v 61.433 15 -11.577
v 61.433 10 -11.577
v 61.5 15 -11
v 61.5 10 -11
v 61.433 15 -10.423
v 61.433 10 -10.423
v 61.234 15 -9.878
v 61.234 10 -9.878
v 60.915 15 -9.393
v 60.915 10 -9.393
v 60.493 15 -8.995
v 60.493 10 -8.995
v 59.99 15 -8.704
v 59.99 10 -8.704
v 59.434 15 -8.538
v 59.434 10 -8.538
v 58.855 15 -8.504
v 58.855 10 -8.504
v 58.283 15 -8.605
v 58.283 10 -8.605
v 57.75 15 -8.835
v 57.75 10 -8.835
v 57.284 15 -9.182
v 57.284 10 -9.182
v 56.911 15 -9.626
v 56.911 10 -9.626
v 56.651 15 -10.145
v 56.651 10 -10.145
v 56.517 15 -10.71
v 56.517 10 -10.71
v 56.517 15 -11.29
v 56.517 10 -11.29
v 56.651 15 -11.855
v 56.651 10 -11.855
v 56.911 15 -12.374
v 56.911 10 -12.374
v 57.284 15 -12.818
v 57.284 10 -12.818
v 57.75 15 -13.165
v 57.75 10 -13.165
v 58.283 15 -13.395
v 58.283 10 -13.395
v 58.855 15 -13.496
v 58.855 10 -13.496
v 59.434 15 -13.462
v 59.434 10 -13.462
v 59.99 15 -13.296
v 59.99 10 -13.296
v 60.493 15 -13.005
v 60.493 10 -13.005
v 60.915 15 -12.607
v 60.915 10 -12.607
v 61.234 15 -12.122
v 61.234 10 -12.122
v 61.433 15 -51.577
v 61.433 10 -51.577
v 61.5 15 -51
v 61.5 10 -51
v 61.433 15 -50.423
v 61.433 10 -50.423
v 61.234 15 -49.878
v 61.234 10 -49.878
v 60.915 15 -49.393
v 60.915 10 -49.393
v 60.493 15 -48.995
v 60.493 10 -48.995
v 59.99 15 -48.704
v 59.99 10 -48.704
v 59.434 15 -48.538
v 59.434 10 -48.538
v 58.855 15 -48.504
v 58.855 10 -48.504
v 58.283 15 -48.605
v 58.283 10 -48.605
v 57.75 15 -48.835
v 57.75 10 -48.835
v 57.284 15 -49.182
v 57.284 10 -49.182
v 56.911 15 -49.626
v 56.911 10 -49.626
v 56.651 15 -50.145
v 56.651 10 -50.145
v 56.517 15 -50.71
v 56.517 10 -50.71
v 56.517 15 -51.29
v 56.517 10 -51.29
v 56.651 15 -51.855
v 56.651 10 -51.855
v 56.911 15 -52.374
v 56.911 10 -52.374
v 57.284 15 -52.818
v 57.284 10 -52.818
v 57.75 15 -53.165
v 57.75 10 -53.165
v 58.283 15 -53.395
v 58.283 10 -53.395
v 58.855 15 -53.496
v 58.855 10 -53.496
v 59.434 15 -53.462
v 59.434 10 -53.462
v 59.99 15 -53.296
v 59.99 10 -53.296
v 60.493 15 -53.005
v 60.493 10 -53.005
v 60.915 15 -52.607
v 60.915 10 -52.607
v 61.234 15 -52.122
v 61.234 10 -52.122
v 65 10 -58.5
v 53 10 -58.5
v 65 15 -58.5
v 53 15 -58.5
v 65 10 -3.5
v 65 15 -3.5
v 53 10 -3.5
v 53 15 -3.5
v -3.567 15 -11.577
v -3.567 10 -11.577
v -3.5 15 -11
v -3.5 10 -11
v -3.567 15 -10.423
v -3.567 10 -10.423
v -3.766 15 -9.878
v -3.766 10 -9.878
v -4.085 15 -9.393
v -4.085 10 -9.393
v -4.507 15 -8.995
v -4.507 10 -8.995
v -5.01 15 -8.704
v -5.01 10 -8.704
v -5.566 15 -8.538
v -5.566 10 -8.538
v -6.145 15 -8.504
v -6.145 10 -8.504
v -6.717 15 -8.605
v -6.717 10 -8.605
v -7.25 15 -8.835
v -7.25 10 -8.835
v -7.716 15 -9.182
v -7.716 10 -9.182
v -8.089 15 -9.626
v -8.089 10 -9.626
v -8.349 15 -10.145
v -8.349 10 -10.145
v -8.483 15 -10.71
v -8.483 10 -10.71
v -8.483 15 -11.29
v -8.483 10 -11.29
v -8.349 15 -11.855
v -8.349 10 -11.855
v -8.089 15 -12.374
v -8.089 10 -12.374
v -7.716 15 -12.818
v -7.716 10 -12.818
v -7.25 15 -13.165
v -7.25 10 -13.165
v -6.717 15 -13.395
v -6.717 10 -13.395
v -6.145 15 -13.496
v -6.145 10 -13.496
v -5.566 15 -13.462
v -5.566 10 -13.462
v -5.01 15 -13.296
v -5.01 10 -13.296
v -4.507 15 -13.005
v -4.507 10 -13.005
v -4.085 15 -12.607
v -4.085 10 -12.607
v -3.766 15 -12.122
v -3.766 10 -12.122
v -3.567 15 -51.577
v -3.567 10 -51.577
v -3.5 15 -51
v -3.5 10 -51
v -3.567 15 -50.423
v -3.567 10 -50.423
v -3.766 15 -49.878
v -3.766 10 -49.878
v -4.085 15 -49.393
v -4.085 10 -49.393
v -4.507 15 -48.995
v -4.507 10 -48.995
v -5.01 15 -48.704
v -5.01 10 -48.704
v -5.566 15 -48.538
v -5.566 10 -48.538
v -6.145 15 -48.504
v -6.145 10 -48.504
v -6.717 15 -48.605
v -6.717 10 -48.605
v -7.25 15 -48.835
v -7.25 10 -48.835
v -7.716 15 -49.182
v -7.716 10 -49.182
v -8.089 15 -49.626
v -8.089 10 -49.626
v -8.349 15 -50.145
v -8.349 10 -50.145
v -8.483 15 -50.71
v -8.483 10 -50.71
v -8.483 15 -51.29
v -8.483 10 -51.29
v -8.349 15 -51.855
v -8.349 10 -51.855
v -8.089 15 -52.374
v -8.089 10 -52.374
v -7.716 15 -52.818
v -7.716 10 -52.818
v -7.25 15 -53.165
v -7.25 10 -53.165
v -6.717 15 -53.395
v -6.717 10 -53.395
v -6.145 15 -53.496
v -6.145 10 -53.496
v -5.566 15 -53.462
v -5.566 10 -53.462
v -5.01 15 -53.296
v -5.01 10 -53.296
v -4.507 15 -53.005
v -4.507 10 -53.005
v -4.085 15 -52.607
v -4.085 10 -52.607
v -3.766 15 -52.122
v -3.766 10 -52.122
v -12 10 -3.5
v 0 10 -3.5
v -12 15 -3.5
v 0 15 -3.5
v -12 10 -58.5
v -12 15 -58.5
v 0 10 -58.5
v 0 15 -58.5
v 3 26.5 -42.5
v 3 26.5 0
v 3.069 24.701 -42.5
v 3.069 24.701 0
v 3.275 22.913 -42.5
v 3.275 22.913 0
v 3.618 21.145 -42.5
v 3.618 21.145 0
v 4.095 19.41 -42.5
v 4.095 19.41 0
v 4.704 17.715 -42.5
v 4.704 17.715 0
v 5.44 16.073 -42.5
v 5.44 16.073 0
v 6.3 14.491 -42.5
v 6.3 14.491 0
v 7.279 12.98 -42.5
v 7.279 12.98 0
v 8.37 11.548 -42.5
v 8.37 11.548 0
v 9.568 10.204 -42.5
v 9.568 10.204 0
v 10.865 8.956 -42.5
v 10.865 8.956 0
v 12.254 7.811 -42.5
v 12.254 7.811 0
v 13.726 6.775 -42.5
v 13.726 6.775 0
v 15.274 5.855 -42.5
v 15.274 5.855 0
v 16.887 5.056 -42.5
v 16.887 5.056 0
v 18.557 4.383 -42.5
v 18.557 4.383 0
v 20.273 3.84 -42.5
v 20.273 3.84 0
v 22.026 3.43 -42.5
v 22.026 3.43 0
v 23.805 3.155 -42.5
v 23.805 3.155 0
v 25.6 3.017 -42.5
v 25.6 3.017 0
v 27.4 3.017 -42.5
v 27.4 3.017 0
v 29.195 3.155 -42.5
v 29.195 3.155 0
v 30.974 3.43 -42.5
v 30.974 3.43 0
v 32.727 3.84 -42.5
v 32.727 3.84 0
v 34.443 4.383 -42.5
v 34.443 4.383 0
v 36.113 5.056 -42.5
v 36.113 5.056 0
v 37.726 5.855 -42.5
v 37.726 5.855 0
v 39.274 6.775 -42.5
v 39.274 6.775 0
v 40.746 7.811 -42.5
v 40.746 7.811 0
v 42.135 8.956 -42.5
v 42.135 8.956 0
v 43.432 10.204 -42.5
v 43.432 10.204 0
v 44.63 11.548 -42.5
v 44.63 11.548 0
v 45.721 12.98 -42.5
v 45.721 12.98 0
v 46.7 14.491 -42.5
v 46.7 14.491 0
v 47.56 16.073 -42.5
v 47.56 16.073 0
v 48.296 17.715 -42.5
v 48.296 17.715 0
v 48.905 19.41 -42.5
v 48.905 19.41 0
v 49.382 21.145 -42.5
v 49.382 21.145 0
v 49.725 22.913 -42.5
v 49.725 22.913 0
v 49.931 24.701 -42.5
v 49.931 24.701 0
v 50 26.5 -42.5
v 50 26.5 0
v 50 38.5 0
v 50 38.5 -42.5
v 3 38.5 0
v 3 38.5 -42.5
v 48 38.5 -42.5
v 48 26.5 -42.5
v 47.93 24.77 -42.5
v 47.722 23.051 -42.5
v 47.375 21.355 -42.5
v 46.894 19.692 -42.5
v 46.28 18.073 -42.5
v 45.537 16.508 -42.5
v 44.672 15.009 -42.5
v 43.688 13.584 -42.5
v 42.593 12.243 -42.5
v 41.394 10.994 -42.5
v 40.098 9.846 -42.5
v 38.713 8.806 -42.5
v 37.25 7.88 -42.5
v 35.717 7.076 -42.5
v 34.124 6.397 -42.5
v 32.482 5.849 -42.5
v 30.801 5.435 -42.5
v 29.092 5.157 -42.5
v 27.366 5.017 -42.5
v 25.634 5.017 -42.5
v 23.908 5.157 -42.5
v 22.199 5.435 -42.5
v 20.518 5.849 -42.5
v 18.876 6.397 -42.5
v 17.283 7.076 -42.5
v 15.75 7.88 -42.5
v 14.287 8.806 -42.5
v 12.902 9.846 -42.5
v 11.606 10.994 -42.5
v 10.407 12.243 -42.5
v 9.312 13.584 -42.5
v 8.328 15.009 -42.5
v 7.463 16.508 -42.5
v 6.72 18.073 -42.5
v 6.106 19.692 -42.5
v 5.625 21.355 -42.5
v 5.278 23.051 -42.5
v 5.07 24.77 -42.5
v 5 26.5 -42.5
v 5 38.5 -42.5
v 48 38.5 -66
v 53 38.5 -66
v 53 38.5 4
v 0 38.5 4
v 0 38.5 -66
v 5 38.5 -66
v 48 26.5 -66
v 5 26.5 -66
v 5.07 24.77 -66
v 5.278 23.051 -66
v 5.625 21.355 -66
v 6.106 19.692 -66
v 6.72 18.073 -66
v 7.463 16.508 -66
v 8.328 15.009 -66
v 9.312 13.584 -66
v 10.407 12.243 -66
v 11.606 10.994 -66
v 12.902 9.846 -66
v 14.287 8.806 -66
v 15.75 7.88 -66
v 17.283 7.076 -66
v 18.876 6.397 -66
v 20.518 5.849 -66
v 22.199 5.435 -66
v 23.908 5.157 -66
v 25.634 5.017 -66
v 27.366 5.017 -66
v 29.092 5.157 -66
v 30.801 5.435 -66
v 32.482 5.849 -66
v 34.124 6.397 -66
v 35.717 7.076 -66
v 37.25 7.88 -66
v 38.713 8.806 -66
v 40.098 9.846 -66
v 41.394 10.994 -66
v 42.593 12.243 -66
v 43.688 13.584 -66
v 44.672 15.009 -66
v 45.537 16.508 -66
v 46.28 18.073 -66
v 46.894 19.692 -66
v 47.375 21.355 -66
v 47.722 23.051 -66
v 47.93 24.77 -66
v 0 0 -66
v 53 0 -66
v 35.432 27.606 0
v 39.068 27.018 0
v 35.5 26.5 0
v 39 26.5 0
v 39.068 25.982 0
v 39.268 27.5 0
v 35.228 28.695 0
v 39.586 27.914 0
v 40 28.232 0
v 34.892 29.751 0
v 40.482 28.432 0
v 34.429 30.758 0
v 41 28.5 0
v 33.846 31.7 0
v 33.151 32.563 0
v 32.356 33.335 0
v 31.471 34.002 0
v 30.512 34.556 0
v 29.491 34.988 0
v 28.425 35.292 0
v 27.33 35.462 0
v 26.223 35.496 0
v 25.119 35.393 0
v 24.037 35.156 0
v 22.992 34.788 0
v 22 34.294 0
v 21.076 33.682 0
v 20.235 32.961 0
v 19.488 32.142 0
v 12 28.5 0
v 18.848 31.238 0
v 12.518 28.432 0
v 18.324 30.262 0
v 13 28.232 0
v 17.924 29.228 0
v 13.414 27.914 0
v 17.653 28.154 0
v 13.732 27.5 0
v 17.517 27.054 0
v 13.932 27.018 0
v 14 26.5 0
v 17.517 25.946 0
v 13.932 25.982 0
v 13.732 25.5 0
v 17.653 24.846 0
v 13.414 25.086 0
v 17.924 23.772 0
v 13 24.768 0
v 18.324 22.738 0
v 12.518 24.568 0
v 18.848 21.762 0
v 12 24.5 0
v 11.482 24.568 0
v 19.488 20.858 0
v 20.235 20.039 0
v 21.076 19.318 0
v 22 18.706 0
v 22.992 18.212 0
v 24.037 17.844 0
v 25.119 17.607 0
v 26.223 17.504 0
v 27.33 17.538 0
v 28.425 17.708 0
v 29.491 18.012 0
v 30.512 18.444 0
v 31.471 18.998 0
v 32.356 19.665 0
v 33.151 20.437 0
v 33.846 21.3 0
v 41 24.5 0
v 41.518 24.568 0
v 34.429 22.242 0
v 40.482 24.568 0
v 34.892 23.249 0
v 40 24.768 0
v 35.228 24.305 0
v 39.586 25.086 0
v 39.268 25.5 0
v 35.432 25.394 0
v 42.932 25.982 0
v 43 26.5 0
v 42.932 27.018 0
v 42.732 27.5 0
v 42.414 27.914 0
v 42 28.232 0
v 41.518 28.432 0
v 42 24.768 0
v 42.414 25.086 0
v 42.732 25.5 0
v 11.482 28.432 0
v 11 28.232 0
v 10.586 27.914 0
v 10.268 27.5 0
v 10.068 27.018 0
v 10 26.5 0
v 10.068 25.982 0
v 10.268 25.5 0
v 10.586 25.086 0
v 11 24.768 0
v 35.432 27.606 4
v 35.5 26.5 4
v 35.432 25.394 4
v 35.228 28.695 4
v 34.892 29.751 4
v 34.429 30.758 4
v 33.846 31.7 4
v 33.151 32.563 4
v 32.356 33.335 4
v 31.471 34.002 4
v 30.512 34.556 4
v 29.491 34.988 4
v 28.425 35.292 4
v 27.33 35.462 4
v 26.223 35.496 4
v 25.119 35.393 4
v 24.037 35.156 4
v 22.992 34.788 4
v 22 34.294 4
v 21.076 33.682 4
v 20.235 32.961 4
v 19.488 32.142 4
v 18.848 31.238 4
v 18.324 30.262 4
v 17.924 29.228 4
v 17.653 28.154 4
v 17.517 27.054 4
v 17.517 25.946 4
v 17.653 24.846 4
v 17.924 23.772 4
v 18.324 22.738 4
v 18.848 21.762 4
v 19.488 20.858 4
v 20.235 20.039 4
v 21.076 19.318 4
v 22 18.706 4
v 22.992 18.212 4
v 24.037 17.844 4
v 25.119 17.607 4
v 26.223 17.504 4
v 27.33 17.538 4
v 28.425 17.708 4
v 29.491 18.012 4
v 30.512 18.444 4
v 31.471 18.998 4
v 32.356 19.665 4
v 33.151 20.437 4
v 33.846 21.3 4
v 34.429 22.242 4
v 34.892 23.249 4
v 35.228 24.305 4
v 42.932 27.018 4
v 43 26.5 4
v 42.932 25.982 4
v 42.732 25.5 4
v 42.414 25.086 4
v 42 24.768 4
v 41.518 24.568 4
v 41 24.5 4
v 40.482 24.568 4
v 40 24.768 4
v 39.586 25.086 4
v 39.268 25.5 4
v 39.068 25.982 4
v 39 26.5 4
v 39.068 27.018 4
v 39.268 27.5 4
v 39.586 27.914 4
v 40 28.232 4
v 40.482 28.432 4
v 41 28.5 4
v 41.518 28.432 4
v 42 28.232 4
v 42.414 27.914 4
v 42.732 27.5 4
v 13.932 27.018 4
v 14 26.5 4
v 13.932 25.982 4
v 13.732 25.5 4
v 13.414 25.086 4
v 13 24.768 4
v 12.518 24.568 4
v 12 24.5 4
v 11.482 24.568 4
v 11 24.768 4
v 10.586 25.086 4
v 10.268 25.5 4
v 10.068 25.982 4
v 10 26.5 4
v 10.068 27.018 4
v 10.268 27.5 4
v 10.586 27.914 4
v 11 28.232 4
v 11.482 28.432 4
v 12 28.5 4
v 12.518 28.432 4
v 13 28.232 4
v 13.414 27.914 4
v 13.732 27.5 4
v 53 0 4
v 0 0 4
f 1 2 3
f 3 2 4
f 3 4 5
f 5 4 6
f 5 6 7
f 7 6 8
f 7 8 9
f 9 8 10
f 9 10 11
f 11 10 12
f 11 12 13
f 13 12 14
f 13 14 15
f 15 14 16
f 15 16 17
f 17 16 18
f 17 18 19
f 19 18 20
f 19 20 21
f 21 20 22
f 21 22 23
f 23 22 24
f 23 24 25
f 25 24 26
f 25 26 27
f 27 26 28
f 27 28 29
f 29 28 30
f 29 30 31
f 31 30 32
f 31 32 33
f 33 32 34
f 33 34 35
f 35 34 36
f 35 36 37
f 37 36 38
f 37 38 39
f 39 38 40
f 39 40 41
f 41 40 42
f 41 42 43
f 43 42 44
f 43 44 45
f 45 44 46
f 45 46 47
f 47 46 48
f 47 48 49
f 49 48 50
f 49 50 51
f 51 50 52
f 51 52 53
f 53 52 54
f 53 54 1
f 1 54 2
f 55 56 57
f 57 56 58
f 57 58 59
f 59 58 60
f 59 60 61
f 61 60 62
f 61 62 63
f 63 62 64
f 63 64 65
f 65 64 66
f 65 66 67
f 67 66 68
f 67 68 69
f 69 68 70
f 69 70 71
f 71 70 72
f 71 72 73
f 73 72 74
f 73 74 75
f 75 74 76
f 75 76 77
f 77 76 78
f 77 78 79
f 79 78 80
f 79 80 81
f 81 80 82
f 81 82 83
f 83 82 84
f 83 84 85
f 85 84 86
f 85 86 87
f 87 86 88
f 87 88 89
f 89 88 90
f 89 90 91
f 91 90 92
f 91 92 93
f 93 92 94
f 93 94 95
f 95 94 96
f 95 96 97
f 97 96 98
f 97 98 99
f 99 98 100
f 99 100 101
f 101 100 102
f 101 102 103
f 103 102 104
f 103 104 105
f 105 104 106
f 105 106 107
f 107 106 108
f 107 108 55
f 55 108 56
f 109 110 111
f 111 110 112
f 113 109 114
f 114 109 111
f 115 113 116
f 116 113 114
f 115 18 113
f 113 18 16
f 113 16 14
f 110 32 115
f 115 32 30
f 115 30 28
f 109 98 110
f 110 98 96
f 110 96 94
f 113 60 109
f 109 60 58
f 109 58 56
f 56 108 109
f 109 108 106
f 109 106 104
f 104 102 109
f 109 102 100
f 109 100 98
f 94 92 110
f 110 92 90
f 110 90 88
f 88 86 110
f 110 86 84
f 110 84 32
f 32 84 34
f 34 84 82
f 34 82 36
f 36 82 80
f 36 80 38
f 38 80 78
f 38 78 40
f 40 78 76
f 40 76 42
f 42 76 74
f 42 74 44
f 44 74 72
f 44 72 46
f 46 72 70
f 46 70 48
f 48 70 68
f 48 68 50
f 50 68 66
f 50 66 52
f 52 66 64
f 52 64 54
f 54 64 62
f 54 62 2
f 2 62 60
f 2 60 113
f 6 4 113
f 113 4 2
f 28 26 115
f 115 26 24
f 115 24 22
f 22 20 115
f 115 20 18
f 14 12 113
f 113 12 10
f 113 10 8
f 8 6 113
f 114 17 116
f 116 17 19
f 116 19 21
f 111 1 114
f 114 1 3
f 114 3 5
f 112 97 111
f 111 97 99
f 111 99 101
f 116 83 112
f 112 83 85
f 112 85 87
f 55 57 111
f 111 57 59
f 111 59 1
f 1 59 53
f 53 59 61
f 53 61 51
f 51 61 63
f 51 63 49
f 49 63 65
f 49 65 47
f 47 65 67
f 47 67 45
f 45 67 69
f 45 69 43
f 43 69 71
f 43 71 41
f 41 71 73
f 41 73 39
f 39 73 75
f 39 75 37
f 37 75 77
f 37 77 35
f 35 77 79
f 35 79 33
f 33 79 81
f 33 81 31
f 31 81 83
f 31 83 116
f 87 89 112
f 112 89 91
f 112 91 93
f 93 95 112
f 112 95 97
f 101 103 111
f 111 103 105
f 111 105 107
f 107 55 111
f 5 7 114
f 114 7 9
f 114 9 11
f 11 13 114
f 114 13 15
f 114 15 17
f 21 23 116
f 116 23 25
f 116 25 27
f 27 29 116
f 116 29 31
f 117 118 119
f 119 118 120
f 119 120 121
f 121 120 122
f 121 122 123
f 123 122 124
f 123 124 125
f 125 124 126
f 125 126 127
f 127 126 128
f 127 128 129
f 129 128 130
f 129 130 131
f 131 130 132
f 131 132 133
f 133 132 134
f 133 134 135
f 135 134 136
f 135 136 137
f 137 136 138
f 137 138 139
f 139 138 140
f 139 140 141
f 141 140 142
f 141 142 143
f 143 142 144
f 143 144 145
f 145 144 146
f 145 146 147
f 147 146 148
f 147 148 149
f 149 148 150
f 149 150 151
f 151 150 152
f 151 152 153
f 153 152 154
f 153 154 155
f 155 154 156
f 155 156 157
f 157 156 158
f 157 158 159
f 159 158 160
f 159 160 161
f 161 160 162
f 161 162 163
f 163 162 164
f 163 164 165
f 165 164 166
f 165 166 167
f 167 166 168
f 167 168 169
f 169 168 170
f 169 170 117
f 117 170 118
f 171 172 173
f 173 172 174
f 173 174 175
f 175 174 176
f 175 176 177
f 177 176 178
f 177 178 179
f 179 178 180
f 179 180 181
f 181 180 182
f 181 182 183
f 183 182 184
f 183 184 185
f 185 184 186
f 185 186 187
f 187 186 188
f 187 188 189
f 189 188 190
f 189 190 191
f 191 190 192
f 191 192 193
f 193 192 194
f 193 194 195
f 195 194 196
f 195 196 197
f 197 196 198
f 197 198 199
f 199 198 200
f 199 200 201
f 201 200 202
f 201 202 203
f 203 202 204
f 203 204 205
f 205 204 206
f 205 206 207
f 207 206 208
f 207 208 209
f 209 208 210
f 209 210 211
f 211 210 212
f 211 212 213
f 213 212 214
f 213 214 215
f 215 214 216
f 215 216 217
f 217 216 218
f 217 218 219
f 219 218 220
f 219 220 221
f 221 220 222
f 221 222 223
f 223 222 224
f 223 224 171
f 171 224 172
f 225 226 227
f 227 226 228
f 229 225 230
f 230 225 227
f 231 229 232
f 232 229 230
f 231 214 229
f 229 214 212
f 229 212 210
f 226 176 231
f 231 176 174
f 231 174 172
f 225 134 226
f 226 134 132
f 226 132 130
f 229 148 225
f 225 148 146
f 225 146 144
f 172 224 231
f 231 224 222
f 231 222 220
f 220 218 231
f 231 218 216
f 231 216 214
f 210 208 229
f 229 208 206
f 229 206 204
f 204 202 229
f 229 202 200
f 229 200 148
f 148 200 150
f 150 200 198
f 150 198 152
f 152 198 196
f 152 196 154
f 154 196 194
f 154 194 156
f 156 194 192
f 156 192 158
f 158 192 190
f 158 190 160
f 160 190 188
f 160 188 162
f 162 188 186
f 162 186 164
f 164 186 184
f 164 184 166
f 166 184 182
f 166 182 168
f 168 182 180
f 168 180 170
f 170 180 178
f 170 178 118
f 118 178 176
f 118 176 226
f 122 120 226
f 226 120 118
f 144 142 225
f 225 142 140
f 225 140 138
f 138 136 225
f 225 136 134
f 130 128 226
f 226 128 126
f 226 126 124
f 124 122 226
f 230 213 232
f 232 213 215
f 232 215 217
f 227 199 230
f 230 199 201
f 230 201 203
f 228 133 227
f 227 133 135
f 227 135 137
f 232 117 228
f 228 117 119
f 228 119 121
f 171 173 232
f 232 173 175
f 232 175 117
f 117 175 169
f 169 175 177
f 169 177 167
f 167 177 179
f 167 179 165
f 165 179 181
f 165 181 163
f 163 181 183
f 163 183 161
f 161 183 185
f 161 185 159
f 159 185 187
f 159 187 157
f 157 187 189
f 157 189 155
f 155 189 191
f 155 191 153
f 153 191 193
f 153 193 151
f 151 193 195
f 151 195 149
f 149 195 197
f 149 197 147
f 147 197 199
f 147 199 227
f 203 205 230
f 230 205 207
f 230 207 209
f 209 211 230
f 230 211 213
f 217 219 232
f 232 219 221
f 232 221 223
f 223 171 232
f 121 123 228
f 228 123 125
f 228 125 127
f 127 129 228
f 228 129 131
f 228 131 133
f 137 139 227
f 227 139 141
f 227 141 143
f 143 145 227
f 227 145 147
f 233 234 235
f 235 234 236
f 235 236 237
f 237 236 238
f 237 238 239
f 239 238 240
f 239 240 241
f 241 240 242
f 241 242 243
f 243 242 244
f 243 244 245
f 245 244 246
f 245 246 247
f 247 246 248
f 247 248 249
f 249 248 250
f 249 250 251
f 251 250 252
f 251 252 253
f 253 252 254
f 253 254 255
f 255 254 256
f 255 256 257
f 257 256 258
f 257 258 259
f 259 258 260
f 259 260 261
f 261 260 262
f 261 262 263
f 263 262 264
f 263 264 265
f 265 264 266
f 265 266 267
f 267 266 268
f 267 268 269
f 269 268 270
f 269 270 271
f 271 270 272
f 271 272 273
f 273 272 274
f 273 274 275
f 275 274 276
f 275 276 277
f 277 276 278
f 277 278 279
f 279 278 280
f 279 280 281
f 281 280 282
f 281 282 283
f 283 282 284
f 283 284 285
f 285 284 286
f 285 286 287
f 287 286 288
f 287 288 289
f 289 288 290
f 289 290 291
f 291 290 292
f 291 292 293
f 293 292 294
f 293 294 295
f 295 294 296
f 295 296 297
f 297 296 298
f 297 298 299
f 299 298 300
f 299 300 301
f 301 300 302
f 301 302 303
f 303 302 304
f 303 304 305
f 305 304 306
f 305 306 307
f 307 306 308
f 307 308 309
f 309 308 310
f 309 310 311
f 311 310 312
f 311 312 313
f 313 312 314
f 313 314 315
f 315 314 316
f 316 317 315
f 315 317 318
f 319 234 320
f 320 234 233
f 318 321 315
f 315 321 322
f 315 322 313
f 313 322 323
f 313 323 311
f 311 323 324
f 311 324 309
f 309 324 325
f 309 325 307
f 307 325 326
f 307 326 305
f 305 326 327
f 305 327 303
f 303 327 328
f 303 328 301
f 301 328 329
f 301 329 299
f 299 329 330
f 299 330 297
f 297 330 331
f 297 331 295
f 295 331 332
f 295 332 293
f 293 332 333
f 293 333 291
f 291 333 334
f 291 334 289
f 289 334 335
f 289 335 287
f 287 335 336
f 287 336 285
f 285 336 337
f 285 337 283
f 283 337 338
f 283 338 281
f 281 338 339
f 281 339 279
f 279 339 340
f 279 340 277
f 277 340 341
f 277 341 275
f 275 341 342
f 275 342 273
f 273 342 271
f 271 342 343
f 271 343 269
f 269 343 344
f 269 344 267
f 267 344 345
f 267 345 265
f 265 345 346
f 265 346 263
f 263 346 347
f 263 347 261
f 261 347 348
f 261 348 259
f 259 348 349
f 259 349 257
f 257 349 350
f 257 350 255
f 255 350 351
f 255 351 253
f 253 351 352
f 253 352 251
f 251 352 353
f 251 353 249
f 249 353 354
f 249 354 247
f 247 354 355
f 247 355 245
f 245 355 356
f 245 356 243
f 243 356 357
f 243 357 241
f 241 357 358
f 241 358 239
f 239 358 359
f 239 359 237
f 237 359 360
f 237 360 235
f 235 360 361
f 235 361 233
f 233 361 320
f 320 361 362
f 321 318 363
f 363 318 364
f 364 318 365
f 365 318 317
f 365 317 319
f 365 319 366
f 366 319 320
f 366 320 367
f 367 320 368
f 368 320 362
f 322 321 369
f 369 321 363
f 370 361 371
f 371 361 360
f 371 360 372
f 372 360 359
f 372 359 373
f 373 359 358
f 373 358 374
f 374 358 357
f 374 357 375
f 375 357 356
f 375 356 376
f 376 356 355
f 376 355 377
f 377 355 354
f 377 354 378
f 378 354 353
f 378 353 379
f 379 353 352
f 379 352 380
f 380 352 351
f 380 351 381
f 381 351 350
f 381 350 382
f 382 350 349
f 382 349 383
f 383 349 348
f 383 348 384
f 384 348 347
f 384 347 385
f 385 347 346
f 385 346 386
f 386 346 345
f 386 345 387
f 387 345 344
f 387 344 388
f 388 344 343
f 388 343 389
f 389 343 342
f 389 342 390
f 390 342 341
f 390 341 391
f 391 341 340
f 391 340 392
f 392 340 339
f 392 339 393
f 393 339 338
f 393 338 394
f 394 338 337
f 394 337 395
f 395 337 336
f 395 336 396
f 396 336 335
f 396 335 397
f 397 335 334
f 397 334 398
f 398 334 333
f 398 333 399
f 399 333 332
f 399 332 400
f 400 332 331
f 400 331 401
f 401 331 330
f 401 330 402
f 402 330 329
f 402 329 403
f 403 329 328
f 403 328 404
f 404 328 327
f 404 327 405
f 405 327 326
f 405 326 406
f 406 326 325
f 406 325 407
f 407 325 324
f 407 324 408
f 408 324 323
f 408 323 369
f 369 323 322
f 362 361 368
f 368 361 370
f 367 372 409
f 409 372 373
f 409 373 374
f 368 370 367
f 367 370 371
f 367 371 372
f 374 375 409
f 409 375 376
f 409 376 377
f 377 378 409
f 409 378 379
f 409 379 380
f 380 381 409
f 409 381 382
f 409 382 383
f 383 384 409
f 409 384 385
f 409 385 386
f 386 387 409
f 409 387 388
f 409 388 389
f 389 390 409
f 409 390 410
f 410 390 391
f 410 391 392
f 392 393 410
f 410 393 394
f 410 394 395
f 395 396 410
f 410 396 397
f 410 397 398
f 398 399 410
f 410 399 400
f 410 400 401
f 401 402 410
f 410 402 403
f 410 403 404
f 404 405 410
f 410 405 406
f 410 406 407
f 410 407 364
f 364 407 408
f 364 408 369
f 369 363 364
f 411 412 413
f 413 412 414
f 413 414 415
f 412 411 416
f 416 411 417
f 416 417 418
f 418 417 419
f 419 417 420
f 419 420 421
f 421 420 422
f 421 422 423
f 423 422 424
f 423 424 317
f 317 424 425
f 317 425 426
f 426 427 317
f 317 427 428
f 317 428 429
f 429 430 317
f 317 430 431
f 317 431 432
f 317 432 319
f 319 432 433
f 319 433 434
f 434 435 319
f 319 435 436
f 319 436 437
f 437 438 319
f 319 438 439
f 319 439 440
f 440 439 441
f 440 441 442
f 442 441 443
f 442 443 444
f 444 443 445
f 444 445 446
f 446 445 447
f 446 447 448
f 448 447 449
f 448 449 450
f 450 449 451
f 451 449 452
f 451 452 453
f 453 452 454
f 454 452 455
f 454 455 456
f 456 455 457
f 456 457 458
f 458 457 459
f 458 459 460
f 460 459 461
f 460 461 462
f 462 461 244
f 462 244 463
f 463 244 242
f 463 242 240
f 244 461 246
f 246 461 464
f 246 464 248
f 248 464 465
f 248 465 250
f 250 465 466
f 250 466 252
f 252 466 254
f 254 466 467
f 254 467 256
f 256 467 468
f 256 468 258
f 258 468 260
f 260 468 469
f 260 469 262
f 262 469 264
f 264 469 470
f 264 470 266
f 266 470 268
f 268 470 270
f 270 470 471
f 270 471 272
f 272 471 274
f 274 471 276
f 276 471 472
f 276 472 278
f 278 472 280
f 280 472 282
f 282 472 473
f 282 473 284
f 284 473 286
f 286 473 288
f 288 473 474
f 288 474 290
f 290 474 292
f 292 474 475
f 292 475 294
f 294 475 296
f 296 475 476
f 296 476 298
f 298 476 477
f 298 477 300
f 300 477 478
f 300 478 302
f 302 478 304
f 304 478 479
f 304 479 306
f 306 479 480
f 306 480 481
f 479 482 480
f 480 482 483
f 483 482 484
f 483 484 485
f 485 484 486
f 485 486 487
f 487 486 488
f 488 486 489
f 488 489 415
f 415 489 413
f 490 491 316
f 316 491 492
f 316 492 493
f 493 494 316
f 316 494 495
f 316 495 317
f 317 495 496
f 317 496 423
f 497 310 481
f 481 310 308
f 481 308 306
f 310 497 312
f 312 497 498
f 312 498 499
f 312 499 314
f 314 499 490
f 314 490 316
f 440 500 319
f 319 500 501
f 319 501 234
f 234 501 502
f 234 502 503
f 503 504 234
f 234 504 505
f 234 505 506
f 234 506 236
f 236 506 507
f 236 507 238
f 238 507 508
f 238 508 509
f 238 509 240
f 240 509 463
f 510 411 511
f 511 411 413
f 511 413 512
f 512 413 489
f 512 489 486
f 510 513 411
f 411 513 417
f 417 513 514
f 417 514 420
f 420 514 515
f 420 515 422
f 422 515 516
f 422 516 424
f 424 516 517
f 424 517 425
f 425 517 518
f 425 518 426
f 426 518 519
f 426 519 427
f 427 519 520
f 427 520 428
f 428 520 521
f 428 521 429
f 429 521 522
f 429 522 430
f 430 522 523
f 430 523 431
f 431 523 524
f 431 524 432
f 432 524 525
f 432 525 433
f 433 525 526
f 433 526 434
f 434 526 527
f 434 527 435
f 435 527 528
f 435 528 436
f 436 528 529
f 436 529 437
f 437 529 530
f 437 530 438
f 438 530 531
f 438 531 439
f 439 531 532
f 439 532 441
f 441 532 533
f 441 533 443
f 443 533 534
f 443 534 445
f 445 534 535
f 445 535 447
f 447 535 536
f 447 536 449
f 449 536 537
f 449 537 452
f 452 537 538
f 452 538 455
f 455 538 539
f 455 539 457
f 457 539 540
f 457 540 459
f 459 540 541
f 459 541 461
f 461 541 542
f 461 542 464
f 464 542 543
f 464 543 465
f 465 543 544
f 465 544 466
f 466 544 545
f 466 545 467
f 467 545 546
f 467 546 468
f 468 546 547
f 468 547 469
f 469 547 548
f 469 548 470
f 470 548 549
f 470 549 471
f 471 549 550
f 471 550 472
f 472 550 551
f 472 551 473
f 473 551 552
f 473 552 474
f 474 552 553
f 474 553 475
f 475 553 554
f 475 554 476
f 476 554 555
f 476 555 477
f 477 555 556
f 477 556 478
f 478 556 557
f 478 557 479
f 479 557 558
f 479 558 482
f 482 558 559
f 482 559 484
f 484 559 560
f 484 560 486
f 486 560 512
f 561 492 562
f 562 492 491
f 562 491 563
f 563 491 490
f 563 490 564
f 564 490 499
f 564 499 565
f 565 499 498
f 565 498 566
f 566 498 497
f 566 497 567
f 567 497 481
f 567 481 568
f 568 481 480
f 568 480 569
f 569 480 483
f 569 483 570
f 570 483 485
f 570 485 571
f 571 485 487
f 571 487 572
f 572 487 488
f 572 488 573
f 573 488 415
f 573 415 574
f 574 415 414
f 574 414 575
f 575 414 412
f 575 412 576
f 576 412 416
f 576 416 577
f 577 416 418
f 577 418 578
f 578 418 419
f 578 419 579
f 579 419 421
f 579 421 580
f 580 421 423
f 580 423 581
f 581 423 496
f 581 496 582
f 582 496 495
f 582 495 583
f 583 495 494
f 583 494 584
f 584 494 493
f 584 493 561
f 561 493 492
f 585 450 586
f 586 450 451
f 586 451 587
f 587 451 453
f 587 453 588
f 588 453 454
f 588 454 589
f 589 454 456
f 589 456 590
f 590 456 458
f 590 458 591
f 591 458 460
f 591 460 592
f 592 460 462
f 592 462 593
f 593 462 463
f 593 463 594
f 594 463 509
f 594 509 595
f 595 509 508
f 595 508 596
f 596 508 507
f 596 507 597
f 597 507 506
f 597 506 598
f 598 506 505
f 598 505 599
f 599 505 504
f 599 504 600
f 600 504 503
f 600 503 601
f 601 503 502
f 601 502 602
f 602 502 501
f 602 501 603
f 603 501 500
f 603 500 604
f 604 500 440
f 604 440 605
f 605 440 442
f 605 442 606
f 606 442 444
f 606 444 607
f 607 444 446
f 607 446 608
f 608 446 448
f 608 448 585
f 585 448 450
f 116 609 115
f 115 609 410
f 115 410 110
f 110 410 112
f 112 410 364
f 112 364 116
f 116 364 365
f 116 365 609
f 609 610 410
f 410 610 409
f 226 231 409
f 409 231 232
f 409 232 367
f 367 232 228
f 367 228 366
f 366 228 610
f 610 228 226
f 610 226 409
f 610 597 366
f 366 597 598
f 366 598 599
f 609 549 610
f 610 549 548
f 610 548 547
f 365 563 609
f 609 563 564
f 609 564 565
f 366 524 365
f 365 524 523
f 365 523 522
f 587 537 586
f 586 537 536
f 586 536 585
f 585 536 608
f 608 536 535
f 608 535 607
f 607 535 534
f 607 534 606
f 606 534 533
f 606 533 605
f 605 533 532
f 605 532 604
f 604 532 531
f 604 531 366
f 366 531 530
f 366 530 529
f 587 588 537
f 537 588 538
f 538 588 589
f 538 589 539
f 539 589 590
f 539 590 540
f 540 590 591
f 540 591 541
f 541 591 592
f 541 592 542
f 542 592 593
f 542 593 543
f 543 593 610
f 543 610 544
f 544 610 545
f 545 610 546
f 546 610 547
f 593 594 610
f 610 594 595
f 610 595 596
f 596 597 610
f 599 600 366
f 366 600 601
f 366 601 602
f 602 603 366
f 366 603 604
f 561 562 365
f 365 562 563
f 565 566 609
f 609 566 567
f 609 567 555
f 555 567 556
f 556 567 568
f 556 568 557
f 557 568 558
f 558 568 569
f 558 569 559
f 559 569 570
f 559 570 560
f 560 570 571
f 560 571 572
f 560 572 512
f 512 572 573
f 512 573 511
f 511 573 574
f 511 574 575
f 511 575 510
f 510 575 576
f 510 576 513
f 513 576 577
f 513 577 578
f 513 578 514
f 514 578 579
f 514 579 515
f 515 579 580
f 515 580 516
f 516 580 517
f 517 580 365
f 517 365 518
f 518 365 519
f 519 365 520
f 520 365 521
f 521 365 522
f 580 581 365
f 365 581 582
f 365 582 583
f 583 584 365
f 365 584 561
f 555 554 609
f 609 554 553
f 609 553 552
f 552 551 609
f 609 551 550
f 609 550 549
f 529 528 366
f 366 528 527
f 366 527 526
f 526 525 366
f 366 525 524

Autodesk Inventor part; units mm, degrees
ref_plane "YZ Plane" through (0, 0, 0) normal (1, 0, 0) x (0, 1, 0)
ref_plane "XZ Plane" through (0, 0, 0) normal (0, 1, 0) x (-1, 0, 0)
sketch "스케치1" plane through (0, 0, 0) normal (0, 0, 1) x (1, 0, 0)
  line L0 (0, 0) -> (53, 0)
  line L1 (53, 0) -> (53, 38.5)
  line L2 (53, 38.5) -> (0, 38.5)
  line L3 (0, 38.5) -> (0, 0)
  arc A0 (3, 26.5) -> (6.2948, 38.5) centre (26.5, 26.5) ccw
  circle A1 centre (12, 26.5) radius 2
  circle A2 centre (41, 26.5) radius 2
  arc A3 (5, 26.5) -> (8.6604, 38.5) centre (26.5, 26.5) ccw
  circle A4 centre (26.5, 26.5) radius 9
  line L4 (3, 38.5) -> (3, 26.5)
  line L5 (5, 38.5) -> (5, 26.5)
  line L6 (48, 51.0228) -> (48, 26.5)
  line L7 (50, 50.0136) -> (50, 26.5)
  line L8 (26.5, 0) -> (26.5, 1.4842)
  line L9 (0, 28) -> (-15, 28)
  line L10 (-15, 28) -> (-15, 13)
  line L11 (-15, 13) -> (0, 13)
  circle A5 centre (-9, 20.5) radius 2.5
  line L12 (53, 28) -> (68, 28)
  line L13 (68, 28) -> (68, 13)
  line L14 (68, 13) -> (53, 13)
  circle A6 centre (62, 20.5) radius 2.5
  circle A7 centre (-9, 20.5) radius 5
  circle A8 centre (62, 20.5) radius 5
  point P0 (44.3396, 38.5)
  point P1 (8.6604, 38.5)
  point P2 (6.2948, 38.5)
  point P3 (46.7052, 38.5)
  point P4 (50, 38.5)
  point P5 (48, 38.5)
  point P6 (-15, 20.5)
  dimension "d1" = 47
  dimension "d2" = 3
  dimension "d3" = 3
  dimension "d4" = 3
  dimension "d5" = 4
  dimension "d6" = 29
  dimension "d7" = 14.5
  dimension "d8" = 10
  dimension "d9" = 43
  dimension "d16" = 18
  dimension "d23" = 15
  dimension "d24" = 15
  dimension "d25" = 6
  dimension "d26" = 5
  dimension "d27" = 13
  dimension "d30" = 10
extrude "돌출1" add sketch "스케치1" along normal blind 4 contours L3 L2 L4 A0 L7 L1 L0 | L2 L5 A3 L6 A0 L4 | L2 A3 L5 | L7 A0 L6 L2 | L6 A0 L2 | A0 L6 A3 L2
extrude "돌출2" add sketch "스케치1" against normal blind 66 contours L3 L2 L4 A0 L7 L1 L0 | L2 L5 A3 L6 A0 L4 | L7 A0 L6 L2
extrude "돌출3" cut sketch "스케치1" against normal blind 42.5 contours L2 L5 A3 L6 A0 L4 | L2 A3 L5 | L7 A0 L6 L2 | L6 A0 L2 | A0 L6 A3 L2 | A1 | A2 | A4
ref_plane "작업 평면1" through (0, 10, 4) normal (0, -1, 0) x (1, 0, 0)
sketch "스케치2" plane through (0, 10, 4) normal (0, -1, 0) x (1, 0, 0)
  line L0 (0, -70) -> (0, 0) projected
  line L1 (0, 0) -> (0, -70) projected
  line L2 (0, 0) -> (53, 0) projected
  line L3 (53, 0) -> (0, 0) projected
  line L4 (10, 0) -> (14, 0) projected
  line L5 (39, 0) -> (43, 0) projected
  line L6 (17.5, 0) -> (35.5, 0) projected
  line L7 (53, -70) -> (53, 0) projected
  line L8 (53, -70) -> (53, 0) projected
  line L9 (0, -7.5) -> (-12, -7.5)
  line L10 (-12, -7.5) -> (-12, -62.5)
  line L11 (-12, -62.5) -> (0, -62.5)
  circle A0 centre (-6, -15) radius 2.5
  circle A1 centre (-6, -55) radius 2.5
  line L12 (26.5, 0) -> (26.5, -15)
  line L13 (53, -7.5) -> (65, -7.5)
  line L14 (65, -7.5) -> (65, -62.5)
  line L15 (65, -62.5) -> (53, -62.5)
  circle A2 centre (59, -15) radius 2.5
  circle A3 centre (59, -55) radius 2.5
  point P0 (0, -4)
  point P1 (-6, -62.5)
  point P2 (0, -35)
  point P3 (-12, -35)
  dimension "d36" = 5
  dimension "d37" = 5
  dimension "d39" = 55
  dimension "d40" = 12
  dimension "d41" = 40
  dimension "d42" = 20
extrude "돌출6" add sketch "스케치2" against normal blind 5
equation "\"d7\" = 0.5 * d6"
equation "\"d42\" = 0.5 * d41"
properties part number "MotorCover_3D 인쇄"
